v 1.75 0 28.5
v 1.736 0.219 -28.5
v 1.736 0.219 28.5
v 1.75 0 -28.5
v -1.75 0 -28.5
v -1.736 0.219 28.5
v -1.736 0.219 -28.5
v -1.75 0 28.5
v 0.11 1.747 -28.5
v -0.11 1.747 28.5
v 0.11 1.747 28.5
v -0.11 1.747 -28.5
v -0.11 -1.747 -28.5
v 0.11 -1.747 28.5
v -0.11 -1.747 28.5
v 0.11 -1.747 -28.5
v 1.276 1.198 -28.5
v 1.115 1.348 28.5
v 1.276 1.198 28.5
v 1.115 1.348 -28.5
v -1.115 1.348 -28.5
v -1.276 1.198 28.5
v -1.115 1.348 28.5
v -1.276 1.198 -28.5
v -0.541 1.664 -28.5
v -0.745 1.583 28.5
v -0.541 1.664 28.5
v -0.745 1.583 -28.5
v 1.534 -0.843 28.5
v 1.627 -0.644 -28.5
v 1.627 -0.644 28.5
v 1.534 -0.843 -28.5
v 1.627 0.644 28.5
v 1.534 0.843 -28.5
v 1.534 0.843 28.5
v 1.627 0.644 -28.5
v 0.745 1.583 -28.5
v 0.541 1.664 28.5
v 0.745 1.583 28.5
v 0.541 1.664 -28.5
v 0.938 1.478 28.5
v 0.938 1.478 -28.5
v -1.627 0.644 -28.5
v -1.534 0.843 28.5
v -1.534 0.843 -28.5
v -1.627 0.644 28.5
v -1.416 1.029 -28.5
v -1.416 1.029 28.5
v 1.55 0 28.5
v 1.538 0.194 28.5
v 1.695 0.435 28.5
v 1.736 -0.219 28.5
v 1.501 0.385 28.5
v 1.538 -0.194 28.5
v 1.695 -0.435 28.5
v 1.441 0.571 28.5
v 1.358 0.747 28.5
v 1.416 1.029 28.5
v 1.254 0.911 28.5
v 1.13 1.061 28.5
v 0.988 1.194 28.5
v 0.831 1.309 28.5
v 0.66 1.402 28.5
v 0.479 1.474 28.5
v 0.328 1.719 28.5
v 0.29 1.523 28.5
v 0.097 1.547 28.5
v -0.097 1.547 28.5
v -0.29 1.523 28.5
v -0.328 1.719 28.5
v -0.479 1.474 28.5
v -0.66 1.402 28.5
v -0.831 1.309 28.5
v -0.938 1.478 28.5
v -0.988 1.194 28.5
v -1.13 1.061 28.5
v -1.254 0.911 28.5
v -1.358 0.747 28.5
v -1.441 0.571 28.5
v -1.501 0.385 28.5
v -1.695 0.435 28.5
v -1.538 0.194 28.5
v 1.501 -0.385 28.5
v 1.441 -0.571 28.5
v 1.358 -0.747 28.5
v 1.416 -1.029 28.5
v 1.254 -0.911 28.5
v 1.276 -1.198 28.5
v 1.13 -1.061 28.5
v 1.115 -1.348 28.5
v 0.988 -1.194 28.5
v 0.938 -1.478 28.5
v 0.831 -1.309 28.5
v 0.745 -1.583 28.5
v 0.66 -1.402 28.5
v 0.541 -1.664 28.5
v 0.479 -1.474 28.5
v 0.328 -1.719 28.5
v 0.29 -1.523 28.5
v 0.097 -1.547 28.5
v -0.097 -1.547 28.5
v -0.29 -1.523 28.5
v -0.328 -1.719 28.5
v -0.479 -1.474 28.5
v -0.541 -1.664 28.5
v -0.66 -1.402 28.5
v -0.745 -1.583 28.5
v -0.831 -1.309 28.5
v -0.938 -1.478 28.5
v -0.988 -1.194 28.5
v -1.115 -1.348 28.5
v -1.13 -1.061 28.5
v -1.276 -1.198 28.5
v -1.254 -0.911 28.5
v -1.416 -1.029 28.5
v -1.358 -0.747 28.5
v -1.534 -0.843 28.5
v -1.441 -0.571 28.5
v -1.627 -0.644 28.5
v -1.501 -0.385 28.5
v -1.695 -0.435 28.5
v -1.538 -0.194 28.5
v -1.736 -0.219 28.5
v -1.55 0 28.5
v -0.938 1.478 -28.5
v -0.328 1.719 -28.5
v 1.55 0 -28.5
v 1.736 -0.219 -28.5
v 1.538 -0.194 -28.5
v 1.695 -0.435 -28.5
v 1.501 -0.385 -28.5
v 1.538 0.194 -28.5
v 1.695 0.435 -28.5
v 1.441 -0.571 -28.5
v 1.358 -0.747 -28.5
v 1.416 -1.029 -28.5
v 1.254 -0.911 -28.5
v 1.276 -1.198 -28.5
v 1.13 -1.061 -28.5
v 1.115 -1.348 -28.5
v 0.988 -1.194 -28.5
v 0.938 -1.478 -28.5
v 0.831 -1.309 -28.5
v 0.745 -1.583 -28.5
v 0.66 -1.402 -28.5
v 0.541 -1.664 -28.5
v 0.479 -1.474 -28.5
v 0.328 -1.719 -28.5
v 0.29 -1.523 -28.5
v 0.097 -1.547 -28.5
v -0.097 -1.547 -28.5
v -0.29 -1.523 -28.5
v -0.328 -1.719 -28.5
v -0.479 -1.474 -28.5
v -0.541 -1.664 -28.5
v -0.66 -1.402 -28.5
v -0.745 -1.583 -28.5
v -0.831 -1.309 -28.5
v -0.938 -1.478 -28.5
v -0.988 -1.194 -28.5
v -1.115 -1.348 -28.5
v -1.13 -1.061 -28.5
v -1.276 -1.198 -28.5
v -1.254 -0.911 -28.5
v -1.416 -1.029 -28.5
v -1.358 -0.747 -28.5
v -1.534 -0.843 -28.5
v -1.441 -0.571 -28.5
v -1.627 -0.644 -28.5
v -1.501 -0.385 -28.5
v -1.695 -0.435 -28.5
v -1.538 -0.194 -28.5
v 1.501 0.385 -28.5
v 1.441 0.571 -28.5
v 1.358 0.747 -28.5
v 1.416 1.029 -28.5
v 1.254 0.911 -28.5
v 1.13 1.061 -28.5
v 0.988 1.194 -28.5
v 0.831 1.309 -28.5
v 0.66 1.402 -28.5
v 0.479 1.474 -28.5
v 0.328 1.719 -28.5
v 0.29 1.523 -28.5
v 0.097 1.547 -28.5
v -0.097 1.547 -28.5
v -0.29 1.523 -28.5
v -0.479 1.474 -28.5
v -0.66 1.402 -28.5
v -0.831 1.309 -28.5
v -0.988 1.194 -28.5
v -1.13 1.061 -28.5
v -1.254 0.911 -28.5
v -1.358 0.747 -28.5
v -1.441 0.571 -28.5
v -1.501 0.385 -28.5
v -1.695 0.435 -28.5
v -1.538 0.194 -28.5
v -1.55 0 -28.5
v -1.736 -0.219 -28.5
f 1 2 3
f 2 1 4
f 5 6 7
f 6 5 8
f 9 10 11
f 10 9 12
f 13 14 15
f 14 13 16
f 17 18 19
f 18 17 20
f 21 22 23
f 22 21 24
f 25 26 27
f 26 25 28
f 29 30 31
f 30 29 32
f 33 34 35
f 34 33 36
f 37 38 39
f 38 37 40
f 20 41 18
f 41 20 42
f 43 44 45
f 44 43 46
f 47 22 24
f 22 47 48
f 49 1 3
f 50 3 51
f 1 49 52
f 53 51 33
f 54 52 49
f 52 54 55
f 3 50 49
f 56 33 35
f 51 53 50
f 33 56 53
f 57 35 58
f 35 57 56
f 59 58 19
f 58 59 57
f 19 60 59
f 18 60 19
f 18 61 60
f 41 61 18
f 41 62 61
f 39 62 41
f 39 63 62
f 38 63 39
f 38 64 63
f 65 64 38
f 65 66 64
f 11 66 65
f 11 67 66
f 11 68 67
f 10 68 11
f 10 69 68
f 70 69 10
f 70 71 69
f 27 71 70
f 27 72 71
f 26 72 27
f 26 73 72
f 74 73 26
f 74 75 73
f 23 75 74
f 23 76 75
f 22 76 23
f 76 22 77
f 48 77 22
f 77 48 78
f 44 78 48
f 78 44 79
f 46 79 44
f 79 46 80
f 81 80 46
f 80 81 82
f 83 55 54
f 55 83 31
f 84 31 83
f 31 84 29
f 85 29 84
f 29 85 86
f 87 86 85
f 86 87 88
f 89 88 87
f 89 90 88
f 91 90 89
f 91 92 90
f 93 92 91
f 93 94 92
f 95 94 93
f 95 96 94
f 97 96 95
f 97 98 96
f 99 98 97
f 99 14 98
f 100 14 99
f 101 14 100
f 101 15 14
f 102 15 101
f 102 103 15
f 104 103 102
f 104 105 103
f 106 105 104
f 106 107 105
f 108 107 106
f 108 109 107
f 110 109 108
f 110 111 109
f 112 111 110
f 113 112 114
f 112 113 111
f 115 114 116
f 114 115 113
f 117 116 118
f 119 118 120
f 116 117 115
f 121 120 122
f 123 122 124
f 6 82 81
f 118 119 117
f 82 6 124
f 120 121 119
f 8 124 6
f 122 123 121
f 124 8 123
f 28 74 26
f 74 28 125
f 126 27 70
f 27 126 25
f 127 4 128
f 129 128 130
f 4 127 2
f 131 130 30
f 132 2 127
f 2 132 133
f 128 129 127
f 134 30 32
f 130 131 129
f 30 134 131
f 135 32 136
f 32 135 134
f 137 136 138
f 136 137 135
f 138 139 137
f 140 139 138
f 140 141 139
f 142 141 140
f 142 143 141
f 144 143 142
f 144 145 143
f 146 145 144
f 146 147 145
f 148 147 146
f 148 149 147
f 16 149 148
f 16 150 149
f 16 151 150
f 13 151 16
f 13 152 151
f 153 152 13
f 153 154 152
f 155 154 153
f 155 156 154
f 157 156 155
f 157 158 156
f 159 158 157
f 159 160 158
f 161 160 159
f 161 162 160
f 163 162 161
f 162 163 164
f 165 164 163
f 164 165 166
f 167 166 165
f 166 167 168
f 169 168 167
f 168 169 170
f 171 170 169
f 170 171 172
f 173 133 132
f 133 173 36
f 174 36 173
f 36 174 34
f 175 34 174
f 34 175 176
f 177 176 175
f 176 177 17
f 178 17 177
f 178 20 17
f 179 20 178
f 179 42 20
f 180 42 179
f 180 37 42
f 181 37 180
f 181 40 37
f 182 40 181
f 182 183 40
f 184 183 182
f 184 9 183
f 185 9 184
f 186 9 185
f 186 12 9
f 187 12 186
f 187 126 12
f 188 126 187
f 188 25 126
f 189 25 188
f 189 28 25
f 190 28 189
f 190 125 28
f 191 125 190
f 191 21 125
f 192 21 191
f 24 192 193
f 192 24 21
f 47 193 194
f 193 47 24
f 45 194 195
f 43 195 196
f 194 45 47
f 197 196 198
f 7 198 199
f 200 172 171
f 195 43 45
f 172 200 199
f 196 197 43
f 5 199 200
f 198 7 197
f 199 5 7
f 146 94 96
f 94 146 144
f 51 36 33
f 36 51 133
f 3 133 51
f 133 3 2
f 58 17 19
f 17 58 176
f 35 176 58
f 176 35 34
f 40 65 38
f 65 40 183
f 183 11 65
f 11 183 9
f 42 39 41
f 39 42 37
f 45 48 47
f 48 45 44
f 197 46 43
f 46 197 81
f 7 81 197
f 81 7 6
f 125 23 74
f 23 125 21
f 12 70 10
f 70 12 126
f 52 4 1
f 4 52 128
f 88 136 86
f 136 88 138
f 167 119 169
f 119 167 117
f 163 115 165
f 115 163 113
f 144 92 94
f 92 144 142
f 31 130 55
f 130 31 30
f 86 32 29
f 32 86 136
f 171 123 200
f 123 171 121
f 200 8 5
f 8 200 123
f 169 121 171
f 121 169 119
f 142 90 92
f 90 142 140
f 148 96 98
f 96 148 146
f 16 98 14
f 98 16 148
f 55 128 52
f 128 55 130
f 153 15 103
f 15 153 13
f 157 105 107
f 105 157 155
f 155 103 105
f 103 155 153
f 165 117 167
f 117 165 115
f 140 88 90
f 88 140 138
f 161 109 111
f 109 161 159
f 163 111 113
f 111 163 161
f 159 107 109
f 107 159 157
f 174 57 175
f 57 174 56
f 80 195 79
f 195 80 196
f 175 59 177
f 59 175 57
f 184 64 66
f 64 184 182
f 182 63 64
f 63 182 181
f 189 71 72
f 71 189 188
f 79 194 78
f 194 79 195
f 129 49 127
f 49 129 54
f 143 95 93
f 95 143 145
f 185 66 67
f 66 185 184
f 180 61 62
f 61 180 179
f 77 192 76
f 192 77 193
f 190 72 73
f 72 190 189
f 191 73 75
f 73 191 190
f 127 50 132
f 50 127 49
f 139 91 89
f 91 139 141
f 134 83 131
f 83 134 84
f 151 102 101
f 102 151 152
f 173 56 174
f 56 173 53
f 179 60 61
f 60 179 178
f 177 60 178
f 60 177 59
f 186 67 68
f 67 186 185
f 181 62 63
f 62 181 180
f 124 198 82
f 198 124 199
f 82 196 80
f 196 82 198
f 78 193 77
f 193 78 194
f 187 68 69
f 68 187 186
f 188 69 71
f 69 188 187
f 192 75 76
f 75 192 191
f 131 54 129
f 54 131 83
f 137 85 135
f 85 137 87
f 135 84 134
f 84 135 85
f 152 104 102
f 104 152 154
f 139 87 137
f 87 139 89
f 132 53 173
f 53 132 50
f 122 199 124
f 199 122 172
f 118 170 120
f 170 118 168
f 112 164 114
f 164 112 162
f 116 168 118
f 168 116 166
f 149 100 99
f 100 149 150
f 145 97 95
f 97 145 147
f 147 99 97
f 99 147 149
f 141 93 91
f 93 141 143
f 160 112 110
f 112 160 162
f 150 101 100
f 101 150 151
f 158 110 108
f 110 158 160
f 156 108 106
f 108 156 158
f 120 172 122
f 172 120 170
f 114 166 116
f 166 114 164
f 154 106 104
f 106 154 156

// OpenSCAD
$fn = 50;


difference() {
	union() {
		translate(v = [0, 0, -28.5000000000]) {
			cylinder(h = 57, r = 1.7500000000);
		}
	}
	union() {
		translate(v = [0, 0, -100.0000000000]) {
			cylinder(h = 200, r = 1.5500000000);
		}
	}
}
